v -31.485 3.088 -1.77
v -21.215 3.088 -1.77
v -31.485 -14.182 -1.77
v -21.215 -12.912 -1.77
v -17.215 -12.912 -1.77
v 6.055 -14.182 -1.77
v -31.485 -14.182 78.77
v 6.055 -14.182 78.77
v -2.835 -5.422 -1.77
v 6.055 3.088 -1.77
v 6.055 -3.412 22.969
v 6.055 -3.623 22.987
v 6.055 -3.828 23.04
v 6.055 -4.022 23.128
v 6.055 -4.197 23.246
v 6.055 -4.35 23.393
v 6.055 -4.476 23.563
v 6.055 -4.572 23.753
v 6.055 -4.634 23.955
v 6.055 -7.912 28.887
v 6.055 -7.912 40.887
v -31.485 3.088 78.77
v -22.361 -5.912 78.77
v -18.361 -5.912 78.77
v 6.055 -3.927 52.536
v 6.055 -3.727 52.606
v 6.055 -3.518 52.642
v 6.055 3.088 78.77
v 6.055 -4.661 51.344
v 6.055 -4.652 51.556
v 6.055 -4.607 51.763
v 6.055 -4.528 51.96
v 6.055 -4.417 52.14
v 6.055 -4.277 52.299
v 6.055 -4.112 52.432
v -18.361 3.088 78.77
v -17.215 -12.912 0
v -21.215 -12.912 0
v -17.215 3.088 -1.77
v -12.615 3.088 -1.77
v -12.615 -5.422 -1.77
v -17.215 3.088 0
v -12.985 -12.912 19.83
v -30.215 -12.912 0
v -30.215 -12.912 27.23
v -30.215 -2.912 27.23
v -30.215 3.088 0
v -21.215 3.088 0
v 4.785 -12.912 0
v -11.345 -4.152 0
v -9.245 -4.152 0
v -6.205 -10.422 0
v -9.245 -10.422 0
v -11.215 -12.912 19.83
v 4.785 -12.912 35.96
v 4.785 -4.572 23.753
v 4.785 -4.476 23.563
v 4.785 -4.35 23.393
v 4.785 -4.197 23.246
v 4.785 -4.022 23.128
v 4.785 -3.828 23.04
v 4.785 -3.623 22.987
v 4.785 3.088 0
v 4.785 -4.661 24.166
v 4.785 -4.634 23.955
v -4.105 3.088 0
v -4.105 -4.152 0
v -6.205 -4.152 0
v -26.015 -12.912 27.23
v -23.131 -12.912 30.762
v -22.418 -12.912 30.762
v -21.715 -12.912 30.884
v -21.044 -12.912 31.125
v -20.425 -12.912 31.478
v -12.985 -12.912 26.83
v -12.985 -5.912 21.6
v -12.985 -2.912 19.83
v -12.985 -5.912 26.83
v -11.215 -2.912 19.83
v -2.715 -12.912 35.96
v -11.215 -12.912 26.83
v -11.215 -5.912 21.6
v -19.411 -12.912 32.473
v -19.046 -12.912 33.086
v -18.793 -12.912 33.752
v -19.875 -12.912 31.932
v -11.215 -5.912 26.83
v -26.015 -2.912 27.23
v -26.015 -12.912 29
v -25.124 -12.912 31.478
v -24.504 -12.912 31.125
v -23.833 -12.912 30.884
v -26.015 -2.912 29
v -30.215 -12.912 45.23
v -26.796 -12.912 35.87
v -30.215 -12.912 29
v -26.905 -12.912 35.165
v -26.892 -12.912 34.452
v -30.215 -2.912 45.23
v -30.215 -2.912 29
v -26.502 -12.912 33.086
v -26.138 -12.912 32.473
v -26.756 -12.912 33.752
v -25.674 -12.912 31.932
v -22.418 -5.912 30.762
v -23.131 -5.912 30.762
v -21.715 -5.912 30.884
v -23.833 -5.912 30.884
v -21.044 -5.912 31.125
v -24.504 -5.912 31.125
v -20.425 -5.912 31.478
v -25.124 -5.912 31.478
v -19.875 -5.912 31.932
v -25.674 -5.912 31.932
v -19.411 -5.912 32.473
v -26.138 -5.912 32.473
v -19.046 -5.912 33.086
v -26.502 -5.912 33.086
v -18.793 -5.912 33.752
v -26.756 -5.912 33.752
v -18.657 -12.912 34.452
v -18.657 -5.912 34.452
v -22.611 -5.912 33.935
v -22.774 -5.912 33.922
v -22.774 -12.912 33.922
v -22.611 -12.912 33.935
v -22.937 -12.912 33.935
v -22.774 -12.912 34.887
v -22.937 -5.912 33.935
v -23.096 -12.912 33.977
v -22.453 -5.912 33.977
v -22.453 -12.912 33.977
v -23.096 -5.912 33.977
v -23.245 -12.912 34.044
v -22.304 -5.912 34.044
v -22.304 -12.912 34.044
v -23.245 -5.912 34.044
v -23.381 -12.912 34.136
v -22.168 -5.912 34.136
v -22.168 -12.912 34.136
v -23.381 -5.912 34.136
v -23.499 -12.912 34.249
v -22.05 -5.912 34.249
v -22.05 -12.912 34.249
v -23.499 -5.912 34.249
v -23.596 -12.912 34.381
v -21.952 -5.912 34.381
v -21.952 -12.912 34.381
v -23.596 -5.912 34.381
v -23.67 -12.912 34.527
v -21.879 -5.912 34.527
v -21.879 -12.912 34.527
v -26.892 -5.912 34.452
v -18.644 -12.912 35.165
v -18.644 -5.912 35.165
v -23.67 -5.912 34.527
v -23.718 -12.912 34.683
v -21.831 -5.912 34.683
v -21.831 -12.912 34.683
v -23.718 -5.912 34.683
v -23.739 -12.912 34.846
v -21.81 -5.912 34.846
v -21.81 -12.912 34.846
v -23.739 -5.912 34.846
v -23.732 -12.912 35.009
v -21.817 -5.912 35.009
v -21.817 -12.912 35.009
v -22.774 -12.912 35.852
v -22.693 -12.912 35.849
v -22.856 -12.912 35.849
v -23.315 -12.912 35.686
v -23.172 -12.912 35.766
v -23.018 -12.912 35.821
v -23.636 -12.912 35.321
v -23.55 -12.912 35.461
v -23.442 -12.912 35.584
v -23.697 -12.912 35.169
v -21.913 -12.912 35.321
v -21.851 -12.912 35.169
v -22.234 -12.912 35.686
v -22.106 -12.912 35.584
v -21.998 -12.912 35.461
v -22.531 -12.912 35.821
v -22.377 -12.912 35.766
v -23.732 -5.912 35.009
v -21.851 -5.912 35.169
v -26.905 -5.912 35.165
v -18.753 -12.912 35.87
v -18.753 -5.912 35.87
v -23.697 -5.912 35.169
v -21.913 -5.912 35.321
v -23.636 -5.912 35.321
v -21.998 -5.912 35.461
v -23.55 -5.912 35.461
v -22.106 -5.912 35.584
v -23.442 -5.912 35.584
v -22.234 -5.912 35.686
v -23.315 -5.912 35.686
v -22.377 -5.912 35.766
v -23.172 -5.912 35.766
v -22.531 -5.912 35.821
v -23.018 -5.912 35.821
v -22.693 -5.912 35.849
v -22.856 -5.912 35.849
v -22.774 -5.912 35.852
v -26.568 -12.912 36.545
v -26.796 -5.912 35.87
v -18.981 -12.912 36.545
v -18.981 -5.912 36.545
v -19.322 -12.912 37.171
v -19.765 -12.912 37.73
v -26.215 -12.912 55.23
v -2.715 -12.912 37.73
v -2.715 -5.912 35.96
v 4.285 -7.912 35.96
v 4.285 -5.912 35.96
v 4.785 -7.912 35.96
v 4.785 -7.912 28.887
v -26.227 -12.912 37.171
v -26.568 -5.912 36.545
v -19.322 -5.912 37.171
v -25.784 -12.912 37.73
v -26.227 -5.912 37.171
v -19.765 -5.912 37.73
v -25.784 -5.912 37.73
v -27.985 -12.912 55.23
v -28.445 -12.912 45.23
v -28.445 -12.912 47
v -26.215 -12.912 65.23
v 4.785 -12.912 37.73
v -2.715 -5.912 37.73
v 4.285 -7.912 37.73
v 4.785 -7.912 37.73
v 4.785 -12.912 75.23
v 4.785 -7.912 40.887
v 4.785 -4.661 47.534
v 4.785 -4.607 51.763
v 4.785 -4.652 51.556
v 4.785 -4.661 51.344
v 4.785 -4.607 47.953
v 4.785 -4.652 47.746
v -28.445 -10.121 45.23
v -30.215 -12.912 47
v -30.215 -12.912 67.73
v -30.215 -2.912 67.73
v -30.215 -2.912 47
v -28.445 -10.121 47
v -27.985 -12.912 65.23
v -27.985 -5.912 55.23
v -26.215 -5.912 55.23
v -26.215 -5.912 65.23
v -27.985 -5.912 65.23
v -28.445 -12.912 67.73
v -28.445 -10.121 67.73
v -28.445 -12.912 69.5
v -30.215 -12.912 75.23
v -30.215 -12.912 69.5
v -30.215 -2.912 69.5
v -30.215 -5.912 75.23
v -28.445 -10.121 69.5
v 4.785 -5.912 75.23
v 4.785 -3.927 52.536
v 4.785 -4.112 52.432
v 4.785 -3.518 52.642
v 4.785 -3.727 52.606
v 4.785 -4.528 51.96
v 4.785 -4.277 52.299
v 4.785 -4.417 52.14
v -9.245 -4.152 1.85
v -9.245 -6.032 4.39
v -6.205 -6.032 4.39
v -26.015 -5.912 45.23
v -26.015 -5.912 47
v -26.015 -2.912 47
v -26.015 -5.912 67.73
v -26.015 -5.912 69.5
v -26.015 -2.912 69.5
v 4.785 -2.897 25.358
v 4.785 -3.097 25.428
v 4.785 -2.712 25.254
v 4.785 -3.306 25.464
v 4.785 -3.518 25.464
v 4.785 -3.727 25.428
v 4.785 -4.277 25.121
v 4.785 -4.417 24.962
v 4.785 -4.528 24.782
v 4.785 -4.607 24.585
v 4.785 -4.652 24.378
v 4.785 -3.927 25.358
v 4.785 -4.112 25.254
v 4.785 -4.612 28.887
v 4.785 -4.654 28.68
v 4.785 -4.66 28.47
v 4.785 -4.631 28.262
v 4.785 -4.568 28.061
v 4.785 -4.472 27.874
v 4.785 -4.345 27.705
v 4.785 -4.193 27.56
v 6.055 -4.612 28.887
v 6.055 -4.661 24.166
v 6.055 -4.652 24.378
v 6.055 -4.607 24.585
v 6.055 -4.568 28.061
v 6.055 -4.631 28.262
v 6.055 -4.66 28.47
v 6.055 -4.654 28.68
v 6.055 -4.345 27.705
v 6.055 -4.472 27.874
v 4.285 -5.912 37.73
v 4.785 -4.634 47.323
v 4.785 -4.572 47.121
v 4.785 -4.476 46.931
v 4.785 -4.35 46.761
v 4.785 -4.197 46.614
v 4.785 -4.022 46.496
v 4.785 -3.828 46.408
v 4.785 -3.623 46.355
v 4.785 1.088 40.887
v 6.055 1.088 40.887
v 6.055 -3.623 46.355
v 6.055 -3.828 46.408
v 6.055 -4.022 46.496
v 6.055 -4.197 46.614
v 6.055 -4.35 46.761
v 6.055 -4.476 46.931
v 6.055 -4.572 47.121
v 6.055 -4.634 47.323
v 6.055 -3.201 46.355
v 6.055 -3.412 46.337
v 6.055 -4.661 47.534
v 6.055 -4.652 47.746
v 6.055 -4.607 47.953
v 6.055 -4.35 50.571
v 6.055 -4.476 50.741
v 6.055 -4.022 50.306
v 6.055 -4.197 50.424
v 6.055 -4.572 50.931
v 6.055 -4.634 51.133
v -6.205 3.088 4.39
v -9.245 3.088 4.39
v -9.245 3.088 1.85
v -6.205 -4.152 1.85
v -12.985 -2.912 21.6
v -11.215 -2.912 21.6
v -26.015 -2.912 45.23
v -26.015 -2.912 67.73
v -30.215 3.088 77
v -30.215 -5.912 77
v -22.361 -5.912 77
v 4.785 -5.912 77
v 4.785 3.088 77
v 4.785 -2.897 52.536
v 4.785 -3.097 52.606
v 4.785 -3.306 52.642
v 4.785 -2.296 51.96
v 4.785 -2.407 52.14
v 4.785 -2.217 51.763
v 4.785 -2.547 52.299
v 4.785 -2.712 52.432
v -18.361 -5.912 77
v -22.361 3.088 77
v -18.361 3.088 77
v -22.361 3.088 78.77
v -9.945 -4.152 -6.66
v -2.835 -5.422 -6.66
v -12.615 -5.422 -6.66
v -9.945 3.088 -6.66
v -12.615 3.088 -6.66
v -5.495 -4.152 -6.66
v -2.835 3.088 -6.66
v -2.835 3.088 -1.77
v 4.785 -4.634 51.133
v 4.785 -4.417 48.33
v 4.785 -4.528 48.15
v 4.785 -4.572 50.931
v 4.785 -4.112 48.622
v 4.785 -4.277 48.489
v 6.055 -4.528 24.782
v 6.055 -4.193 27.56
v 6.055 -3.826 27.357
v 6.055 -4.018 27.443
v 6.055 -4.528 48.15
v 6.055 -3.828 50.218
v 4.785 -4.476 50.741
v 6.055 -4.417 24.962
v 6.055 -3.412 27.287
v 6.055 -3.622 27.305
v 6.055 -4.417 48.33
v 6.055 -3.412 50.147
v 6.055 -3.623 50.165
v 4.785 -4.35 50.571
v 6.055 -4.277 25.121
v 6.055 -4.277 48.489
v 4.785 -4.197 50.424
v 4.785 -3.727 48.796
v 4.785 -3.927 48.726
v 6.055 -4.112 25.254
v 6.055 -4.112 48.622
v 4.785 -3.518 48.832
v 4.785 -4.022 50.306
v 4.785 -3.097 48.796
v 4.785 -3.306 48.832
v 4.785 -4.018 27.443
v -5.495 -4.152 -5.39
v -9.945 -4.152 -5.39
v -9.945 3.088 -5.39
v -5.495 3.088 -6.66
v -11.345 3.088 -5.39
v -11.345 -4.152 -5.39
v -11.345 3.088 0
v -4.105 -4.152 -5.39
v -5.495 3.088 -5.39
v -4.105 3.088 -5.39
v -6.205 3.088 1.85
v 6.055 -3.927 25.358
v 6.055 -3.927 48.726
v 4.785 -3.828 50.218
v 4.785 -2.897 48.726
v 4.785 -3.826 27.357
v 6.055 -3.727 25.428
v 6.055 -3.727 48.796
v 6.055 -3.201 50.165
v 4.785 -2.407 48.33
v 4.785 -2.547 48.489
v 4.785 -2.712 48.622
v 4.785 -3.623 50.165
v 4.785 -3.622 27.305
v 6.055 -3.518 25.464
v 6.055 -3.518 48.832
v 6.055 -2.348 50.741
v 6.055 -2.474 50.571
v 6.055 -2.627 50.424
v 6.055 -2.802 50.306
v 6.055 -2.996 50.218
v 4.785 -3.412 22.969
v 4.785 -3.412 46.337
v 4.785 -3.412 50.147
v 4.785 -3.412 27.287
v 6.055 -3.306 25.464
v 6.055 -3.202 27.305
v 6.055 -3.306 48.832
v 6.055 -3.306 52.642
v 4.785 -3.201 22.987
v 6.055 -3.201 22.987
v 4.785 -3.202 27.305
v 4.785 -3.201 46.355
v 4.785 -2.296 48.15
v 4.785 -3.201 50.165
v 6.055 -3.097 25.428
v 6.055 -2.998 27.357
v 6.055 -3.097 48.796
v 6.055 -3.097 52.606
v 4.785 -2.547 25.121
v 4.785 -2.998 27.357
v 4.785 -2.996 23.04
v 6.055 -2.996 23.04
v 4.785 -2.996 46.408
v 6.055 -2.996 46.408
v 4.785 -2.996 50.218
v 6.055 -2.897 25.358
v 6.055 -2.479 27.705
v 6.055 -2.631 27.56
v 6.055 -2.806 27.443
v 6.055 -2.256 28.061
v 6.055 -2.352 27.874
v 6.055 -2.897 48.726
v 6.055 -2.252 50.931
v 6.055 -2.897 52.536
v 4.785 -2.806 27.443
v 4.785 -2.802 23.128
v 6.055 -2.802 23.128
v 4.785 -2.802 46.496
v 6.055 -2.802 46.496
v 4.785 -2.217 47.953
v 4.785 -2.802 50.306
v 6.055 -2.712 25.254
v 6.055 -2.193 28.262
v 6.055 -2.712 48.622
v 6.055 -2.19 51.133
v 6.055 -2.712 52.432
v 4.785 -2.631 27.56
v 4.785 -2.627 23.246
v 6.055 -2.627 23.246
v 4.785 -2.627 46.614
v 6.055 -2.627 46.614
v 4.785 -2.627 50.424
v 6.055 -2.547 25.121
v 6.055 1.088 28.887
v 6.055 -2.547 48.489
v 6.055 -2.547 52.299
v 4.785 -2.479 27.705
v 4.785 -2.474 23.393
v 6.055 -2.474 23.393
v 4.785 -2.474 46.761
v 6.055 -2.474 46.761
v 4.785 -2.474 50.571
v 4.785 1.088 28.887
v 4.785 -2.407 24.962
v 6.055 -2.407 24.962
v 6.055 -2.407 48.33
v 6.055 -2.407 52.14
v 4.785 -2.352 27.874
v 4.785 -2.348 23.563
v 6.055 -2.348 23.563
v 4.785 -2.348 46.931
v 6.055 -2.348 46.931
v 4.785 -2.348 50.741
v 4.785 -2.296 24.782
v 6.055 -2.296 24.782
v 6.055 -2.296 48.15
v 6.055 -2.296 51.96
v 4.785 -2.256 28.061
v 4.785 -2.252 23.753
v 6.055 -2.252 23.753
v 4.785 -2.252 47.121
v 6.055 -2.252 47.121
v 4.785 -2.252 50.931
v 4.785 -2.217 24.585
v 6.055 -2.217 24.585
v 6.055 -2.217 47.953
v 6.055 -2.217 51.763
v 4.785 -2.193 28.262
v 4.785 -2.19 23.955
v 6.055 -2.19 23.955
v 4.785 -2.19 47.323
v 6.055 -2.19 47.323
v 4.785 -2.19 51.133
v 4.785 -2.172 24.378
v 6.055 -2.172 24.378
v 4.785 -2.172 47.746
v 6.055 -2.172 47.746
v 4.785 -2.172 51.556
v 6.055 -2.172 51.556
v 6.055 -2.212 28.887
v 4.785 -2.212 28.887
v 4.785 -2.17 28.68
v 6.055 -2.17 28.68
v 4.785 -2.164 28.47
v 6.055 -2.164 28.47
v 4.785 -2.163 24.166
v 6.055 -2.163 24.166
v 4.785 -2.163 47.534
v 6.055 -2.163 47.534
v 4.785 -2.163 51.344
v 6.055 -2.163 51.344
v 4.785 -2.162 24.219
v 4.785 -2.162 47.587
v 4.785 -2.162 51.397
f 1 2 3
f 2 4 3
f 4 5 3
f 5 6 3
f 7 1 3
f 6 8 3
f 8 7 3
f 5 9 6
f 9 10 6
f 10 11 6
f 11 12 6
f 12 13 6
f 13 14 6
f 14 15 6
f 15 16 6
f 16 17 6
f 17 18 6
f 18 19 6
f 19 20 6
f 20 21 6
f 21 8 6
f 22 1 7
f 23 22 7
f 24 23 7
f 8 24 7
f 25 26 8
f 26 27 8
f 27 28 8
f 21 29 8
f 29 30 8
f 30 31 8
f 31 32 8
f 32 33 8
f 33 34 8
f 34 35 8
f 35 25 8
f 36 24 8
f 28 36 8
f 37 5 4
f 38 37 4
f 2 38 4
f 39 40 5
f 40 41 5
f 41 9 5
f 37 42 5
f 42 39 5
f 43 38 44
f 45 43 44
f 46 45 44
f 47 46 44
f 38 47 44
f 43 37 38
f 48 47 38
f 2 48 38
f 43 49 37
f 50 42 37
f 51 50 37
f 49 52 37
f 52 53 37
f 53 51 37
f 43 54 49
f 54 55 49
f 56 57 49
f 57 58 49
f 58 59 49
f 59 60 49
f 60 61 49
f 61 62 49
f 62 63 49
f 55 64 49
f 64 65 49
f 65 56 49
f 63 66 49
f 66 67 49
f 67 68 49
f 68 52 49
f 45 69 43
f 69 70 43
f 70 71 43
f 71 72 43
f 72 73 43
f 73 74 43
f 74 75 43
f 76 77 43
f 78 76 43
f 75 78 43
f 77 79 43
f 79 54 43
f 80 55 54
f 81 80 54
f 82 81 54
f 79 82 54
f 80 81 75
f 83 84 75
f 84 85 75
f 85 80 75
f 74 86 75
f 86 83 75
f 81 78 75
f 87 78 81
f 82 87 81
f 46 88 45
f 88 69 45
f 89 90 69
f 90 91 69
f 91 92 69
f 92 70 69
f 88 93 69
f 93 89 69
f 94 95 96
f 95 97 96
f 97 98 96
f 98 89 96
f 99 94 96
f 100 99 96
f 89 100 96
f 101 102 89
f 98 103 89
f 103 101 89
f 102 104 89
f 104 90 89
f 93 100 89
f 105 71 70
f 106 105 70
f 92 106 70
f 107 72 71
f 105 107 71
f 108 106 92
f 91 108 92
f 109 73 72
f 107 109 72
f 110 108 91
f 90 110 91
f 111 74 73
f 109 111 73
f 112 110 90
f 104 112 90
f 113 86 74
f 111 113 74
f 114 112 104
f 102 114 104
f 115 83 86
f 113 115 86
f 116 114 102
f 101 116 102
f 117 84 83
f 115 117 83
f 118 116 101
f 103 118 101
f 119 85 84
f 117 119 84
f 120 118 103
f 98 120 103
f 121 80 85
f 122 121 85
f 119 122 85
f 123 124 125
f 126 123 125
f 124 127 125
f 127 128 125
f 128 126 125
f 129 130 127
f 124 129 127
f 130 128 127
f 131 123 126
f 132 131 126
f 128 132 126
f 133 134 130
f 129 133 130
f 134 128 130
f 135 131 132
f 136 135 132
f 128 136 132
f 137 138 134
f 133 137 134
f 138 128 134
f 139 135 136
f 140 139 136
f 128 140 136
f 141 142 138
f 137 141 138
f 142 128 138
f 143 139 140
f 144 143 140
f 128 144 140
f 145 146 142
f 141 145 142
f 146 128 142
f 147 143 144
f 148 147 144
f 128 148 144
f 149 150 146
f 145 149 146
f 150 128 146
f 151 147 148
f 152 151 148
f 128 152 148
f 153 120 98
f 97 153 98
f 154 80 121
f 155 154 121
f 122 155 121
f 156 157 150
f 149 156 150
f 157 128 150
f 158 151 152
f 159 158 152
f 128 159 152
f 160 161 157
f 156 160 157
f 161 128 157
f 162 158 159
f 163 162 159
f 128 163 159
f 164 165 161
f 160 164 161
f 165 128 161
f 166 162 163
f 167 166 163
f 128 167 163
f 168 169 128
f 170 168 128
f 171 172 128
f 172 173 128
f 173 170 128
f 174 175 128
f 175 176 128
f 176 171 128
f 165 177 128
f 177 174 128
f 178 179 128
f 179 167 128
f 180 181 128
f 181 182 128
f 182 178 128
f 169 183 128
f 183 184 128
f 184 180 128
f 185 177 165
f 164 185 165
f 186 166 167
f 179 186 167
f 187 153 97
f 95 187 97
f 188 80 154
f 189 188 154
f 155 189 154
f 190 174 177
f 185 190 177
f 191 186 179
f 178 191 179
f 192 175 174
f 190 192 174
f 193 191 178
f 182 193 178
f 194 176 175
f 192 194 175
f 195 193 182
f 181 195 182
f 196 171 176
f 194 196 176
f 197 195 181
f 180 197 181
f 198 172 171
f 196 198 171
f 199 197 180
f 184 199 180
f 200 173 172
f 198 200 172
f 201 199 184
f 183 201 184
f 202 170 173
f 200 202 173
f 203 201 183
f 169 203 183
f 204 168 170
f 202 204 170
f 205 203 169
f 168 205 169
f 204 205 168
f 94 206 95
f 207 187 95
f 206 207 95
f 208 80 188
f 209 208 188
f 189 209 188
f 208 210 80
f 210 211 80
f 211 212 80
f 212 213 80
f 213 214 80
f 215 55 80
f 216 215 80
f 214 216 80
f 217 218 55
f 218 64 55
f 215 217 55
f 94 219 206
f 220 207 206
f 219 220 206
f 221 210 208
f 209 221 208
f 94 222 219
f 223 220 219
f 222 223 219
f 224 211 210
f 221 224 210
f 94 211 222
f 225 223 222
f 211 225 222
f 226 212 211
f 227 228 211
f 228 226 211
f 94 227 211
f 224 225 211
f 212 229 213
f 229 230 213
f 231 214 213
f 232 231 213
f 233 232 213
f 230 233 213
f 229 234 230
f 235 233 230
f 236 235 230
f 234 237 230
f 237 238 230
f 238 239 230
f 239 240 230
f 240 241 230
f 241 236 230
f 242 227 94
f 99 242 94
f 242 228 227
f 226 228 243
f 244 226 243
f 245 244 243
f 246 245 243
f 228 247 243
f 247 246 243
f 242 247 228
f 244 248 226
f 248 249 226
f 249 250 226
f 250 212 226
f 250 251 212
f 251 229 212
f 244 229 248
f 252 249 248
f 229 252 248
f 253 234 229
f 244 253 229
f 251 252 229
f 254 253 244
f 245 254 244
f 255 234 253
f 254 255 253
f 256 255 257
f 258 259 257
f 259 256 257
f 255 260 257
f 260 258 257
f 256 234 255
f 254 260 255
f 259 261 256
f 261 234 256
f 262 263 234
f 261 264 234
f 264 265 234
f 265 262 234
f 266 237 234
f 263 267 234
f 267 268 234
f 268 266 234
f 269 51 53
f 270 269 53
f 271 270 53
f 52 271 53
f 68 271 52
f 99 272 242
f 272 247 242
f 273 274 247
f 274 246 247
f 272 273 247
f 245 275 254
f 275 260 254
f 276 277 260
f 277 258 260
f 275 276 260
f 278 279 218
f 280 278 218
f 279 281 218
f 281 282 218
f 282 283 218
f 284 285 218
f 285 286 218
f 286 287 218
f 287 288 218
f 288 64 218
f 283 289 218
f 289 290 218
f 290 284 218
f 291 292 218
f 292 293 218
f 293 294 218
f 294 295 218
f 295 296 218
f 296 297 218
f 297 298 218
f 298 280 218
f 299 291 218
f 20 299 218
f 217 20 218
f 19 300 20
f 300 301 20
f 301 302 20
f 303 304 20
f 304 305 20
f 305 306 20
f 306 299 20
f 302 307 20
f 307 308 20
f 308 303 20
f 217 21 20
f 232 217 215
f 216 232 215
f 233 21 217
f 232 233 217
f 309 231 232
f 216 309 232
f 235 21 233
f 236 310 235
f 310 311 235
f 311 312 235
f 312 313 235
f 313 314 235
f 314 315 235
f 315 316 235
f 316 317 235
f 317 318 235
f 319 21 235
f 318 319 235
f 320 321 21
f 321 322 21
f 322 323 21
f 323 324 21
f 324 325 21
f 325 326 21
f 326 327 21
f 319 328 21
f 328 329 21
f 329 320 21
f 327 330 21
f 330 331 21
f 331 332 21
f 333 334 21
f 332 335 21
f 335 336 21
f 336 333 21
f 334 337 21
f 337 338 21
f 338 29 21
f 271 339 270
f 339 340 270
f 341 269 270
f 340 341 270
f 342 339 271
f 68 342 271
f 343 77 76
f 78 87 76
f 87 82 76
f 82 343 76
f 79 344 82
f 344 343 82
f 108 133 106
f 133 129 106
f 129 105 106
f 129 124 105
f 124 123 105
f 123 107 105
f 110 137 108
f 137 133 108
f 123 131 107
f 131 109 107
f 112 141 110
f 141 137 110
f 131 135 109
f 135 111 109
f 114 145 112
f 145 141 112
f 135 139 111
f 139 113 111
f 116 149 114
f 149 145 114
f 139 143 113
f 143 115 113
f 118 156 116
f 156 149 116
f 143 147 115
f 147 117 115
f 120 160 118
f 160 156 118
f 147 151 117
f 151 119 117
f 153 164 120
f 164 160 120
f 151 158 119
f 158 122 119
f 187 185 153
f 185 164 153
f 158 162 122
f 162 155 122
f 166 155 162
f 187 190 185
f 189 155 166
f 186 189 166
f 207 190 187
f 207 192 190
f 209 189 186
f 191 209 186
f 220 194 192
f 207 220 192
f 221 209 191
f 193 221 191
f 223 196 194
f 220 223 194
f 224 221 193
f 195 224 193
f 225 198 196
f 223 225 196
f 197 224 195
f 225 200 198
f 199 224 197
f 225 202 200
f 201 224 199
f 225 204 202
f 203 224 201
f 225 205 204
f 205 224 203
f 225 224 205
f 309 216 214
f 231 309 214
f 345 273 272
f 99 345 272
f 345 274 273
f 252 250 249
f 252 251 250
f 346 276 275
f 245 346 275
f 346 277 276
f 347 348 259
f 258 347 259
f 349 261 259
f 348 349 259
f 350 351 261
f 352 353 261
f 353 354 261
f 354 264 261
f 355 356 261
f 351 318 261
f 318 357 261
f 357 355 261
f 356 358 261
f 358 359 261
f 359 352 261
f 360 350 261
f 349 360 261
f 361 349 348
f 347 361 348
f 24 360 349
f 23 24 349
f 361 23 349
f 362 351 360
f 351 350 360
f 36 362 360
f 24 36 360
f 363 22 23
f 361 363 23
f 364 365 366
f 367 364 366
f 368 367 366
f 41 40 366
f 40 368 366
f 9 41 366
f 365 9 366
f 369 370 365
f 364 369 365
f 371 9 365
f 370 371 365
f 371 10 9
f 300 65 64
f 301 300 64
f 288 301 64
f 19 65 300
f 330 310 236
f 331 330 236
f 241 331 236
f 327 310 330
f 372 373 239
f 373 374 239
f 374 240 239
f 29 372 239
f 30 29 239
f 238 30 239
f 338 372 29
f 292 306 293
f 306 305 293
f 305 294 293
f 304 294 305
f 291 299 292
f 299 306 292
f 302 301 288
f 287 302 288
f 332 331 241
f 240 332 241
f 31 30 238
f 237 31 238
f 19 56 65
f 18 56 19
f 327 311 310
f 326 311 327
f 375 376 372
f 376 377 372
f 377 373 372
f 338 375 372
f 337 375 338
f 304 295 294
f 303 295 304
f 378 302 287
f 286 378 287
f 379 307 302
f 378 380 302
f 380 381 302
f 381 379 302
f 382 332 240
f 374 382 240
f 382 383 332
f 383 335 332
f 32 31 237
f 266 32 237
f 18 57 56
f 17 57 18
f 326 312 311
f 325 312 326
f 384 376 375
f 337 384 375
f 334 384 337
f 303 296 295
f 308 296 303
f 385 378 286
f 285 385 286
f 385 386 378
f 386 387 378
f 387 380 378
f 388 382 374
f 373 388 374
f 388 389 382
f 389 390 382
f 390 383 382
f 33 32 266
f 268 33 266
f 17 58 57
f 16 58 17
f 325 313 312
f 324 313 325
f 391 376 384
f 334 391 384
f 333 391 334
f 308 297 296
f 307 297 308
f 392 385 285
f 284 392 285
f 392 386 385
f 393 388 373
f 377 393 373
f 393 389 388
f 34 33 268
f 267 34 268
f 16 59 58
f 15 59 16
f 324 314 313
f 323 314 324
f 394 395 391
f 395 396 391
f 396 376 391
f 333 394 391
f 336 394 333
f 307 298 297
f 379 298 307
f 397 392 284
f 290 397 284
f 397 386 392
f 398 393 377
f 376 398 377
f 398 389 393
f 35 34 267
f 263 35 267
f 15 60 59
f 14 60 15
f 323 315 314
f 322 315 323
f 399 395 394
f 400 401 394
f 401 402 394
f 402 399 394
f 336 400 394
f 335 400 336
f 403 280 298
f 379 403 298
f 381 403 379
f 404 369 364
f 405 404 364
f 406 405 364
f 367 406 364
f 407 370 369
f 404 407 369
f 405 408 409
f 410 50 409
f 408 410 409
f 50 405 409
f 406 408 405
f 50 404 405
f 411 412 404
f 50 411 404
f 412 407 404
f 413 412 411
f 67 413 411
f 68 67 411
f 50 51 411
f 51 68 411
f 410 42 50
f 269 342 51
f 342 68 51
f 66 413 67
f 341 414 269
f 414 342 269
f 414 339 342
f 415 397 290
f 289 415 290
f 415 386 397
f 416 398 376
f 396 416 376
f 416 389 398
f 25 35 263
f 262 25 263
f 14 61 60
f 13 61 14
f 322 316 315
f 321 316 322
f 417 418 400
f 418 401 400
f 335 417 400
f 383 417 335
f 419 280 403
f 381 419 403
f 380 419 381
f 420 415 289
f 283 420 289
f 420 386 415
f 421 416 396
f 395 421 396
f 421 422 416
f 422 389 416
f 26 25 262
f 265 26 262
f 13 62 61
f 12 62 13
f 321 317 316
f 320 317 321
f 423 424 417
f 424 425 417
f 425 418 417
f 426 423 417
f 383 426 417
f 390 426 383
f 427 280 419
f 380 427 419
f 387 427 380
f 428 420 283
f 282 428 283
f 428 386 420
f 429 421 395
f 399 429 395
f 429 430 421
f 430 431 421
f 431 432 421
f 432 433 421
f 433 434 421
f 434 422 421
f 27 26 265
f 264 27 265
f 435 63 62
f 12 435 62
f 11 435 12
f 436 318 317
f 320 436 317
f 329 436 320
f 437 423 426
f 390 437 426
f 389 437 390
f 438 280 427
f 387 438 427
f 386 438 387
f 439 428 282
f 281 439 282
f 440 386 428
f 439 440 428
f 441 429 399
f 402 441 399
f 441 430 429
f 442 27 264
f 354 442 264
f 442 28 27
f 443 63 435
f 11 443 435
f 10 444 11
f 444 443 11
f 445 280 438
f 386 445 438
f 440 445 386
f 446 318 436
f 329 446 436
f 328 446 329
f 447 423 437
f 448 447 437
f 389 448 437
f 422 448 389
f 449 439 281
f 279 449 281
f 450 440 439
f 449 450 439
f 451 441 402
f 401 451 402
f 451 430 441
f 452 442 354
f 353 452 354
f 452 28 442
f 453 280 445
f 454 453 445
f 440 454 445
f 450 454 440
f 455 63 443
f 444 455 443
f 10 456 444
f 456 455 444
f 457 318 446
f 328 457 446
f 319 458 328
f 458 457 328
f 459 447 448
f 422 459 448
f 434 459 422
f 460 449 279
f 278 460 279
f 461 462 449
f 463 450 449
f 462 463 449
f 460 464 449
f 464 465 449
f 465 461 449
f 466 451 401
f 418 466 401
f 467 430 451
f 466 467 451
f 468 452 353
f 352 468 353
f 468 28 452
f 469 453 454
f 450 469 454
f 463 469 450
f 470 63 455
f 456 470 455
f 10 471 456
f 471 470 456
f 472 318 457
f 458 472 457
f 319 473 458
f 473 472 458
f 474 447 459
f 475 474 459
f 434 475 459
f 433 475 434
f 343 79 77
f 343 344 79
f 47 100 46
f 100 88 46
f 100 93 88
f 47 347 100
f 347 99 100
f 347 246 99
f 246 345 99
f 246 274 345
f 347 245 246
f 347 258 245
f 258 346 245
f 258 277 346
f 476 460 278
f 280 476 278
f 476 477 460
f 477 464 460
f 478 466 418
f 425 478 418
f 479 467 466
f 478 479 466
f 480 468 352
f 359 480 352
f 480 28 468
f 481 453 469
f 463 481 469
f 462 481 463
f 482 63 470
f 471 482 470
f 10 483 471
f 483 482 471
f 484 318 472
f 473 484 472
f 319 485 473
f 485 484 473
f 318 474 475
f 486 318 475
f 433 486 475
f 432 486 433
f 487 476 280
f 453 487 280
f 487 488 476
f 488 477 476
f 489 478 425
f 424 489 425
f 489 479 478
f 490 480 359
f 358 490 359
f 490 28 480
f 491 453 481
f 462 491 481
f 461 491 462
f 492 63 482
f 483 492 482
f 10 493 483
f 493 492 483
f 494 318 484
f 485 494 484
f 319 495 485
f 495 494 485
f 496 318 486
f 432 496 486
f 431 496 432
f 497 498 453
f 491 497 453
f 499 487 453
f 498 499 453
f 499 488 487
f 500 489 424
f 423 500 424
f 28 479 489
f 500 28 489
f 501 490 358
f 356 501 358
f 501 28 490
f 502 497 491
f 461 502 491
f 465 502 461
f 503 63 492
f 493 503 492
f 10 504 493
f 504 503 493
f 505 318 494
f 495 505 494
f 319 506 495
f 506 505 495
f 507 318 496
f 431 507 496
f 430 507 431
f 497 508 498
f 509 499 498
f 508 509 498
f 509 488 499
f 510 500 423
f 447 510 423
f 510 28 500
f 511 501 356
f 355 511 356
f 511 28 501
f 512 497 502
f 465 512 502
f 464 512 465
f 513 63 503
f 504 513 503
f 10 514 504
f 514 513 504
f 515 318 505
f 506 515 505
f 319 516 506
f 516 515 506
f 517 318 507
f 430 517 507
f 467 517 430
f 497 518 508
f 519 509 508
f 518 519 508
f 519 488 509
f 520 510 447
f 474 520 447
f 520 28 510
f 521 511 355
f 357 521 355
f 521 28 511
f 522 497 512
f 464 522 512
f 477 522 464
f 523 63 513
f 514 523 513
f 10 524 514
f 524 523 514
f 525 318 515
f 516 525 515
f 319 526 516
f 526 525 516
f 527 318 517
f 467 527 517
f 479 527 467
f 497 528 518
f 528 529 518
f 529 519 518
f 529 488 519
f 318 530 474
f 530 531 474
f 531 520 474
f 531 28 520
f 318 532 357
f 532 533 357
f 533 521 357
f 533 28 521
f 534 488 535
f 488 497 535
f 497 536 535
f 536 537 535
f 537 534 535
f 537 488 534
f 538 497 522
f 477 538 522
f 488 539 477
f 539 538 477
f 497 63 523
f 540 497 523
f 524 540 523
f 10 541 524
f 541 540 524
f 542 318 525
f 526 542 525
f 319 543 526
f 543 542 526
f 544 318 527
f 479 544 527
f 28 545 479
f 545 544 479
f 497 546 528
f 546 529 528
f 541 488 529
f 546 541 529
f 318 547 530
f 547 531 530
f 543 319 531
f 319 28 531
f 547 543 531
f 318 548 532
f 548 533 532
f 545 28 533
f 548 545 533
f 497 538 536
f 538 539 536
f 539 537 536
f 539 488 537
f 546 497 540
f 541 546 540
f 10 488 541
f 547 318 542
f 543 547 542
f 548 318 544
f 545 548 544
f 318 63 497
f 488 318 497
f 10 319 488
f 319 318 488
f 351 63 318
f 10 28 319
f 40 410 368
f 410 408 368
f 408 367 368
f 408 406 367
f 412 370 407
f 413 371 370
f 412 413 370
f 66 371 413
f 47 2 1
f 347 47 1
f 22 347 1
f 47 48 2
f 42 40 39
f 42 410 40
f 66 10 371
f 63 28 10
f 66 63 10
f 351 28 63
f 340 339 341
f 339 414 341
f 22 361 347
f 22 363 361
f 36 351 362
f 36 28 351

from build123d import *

# Parameters (mm, degrees)
BOSS_EXTRUDE1_DEPTH            = 77
SKETCH3_W                      = 37.54
SKETCH3_H                      = 17.27
BOSS_EXTRUDE2_DEPTH            = 1.77
SKETCH4_W                      = 37.54
SKETCH4_H                      = 17.27
BOSS_EXTRUDE3_DEPTH            = 1.77
SKETCH5_W                      = 4
SKETCH5_H                      = 16
CUT_EXTRUDE2_DEPTH             = 1.77
SKETCH6_W                      = 9.78
SKETCH6_H                      = 11.05
SKETCH6_W_2                    = 7.24
SKETCH6_H_2                    = 7.24
BUTTON_WALLS_DEPTH             = 7.24
SKETCH7_W                      = 9.78
SKETCH7_H                      = 11.05
BUTTON_BOTTOM_DEPTH            = 1.27
SKETCH8_W                      = 7.24
SKETCH8_H                      = 1.77
BUTTON_CUTOUT_MIDDLE_DEPTH     = 7.24
SKETCH9_W                      = 4.45
SKETCH9_H                      = 1.27
SKETCH9_W_2                    = 3.37
SKETCH9_H_2                    = 4.39
BUTTON_CUTOUT_FRONT_BACK_DEPTH = 7.24
SKETCH10_W                     = 3.37
SKETCH10_H                     = 4.39
BUTTON_CUTOUT_BOTTOM_DEPTH     = 1.27
BUTTON_CHAMFER1_SIZE           = 5
SKETCH12_W                     = 35
SKETCH12_H                     = 1.77
SKETCH12_W_2                   = 1.77
SKETCH12_H_2                   = 10
SKETCH12_W_3                   = 7.5
SKETCH12_R                     = 0.9652
SKETCH12_H_3                   = 7
SUPPORT_PCB_BATTERY_DEPTH      = 7
SKETCH13_R                     = 1.25
SKETCH13_W                     = 12
SKETCH13_H                     = 9
CUTOUT_USB_3_LEDS_DEPTH        = 1.77
SKETCH16_W                     = 1.77
SKETCH16_H                     = 1.77
TAB_PCB_RETAINER_LEN_DEPTH     = 3
SKETCH17_W                     = 4
SKETCH17_H                     = 1.77
CUTOUT_BACK_MOT_WIRES_DEPTH    = 9
SKETCH18_R                     = 1.25
CUTOUT_CHG_DONE_LED_DEPTH      = 10
SKETCH19_W                     = 4.2
SKETCH19_H                     = 1.77
TAB_PCB_RETAINERS_WIDTH_DEPTH  = 10
CUTOUT_RETAINER_TAB_1_DEPTH    = 1.77
CUTOUT_RETAINER_TAB_2_DEPTH    = 1.77


with BuildPart() as part:
    # Sketch2 → Boss-Extrude1 (new body)
    with BuildSketch(Plane.XY):
        Polygon((-30.215355805, 3.088014981), (-30.215355805, -12.911985019), (4.784644195, -12.911985019), (4.784644195, 3.088014981), (6.054644195, 3.088014981), (6.054644195, -14.181985019), (-31.485355805, -14.181985019), (-31.485355805, 3.088014981), align=None)
    extrude(amount=BOSS_EXTRUDE1_DEPTH)

    # Sketch3 → Boss-Extrude2 (add)
    with BuildSketch(Plane.XY.offset(77)):
        with Locations((-12.715355805, -5.546985019)):
            Rectangle(SKETCH3_W, SKETCH3_H)
    extrude(amount=BOSS_EXTRUDE2_DEPTH)

    # Sketch4 → Boss-Extrude3 (add)
    with BuildSketch(Plane(origin=(0, 0, 0), x_dir=(-1, 0, 0), z_dir=(0, 0, -1))):
        with Locations((12.715355805, -5.546985019)):
            Rectangle(SKETCH4_W, SKETCH4_H)
    extrude(amount=BOSS_EXTRUDE3_DEPTH)

    # Sketch5 → Cut-Extrude2 (cut)
    with BuildSketch(Plane(origin=(0, 0, -1.77), x_dir=(-1, 0, 0), z_dir=(0, 0, -1))):
        with Locations((19.215355805, -4.911985019)):
            Rectangle(SKETCH5_W, SKETCH5_H)
    extrude(amount=-CUT_EXTRUDE2_DEPTH, mode=Mode.SUBTRACT)

    # Sketch6 → button_walls (add)
    with BuildSketch(Plane(origin=(0, 3.088014981, 0), x_dir=(1, 0, 0), z_dir=(0, 1, 0))):
        with Locations((-7.725355805, 1.135)):
            Rectangle(SKETCH6_W, SKETCH6_H)
        with Locations((-7.725355805, 1.77)):
            Rectangle(SKETCH6_W_2, SKETCH6_H_2, mode=Mode.SUBTRACT)
    extrude(amount=-BUTTON_WALLS_DEPTH)

    # Sketch7 → button_bottom (add)
    with BuildSketch(Plane.XZ.offset(4.151985019)):
        with Locations((-7.725355805, -1.135)):
            Rectangle(SKETCH7_W, SKETCH7_H)
    extrude(amount=BUTTON_BOTTOM_DEPTH)

    # Sketch8 → button_cutout_middle (cut)
    with BuildSketch(Plane(origin=(0, 3.088014981, 0), x_dir=(1, 0, 0), z_dir=(0, 1, 0))):
        with Locations((-7.725355805, 0.885)):
            Rectangle(SKETCH8_W, SKETCH8_H)
    extrude(amount=-BUTTON_CUTOUT_MIDDLE_DEPTH, mode=Mode.SUBTRACT)

    # Sketch9 → button_cutout_front_back (cut)
    with BuildSketch(Plane(origin=(0, 3.088014981, 0), x_dir=(1, 0, 0), z_dir=(0, 1, 0))):
        with Locations((-7.720355805, 6.025)):
            Rectangle(SKETCH9_W, SKETCH9_H)
        with Locations((-10.930355805, -2.195)):
            Rectangle(SKETCH9_W_2, SKETCH9_H_2)
        with Locations((-4.520355805, -2.195)):
            Rectangle(SKETCH9_W_2, SKETCH9_H_2)
    extrude(amount=-BUTTON_CUTOUT_FRONT_BACK_DEPTH, mode=Mode.SUBTRACT)

    # Sketch10 → button_cutout_bottom (cut)
    with BuildSketch(Plane(origin=(0, -4.151985019, 0), x_dir=(1, 0, 0), z_dir=(0, 1, 0))):
        with Locations((-10.930355805, -2.195)):
            Rectangle(SKETCH10_W, SKETCH10_H)
        with Locations((-4.520355805, -2.195)):
            Rectangle(SKETCH10_W, SKETCH10_H)
    extrude(amount=-BUTTON_CUTOUT_BOTTOM_DEPTH, mode=Mode.SUBTRACT)

    # button_Chamfer1
    # the kernel refuses this chamfer: 5 mm, written as the material it adds along each edge
    with BuildSketch(Plane(origin=(-6.205355805, -5.421985019, 0), x_dir=(0, -0.9996219169112968, -0.027495876610586372), z_dir=(-1, 0, 0))) as button_chamfer1_piece_1_section:
        Polygon((BUTTON_CHAMFER1_SIZE * 0.999621916911, BUTTON_CHAMFER1_SIZE * 0.0274958766106), (-BUTTON_CHAMFER1_SIZE * 0.0274958766106, BUTTON_CHAMFER1_SIZE * 0.999621916911), (0, 0), align=None)
    button_chamfer1_piece_1 = extrude(amount=3.04, mode=Mode.PRIVATE)
    button_chamfer1_piece_1 = split(button_chamfer1_piece_1, bisect_by=Plane(origin=(-7.725355805, -7.110612501, 4.39), z_dir=(0, 0, -1)), keep=Keep.TOP, mode=Mode.PRIVATE)
    add(button_chamfer1_piece_1)

    # Sketch12 → support_pcb_battery (add)
    # profile 1 of 5: a face of its own
    with BuildSketch(Plane(origin=(0, -12.911985019, 0), x_dir=(1, 0, 0), z_dir=(0, 1, 0))):
        with Locations((-12.715355805, -76.115)):
            Rectangle(SKETCH12_W, SKETCH12_H)
    # profile 2 of 5: a face of its own
    with BuildSketch(Plane(origin=(0, -12.911985019, 0), x_dir=(1, 0, 0), z_dir=(0, 1, 0))):
        with Locations((-27.100355805, -60.23)):
            Rectangle(SKETCH12_W_2, SKETCH12_H_2)
    # profile 3 of 5: a face of its own
    with BuildSketch(Plane(origin=(0, -12.911985019, 0), x_dir=(1, 0, 0), z_dir=(0, 1, 0))):
        with Locations((1.034644195, -36.845)):
            Rectangle(SKETCH12_W_3, SKETCH12_H)
    # profile 4 of 5: a face of its own
    with BuildSketch(Plane(origin=(0, -12.911985019, 0), x_dir=(1, 0, 0), z_dir=(0, 1, 0))):
        with BuildLine():
            Line((-25.783918863, -37.73), (-19.764792747, -37.73))
            ThreePointArc((-19.764792747, -37.73), (-22.774355805, -30.7466), (-25.783918863, -37.73))
        make_face()
        with Locations(Location((-22.774355805, -34.8868, 0), (0, 0, 270))):
            Circle(SKETCH12_R, mode=Mode.SUBTRACT)
    # profile 5 of 5: a face of its own
    with BuildSketch(Plane(origin=(0, -12.911985019, 0), x_dir=(1, 0, 0), z_dir=(0, 1, 0))):
        with Locations((-12.100355805, -23.33)):
            Rectangle(SKETCH12_W_2, SKETCH12_H_3)
    extrude(amount=SUPPORT_PCB_BATTERY_DEPTH)

    # Sketch13 → cutout_usb_3_leds (cut)
    with BuildSketch(Plane(origin=(6.054644195, 0, 0), x_dir=(0, 0, -1), z_dir=(1, 0, 0))):
        with Locations((-51.3968, -3.411985019)):
            Circle(SKETCH13_R)
        with Locations((-47.5868, -3.411985019)):
            Circle(SKETCH13_R)
        with Locations((-24.2188, -3.411985019)):
            Circle(SKETCH13_R)
        with Locations((-34.8868, -3.411985019)):
            Rectangle(SKETCH13_W, SKETCH13_H)
    extrude(amount=-CUTOUT_USB_3_LEDS_DEPTH, mode=Mode.SUBTRACT)

    # Sketch16 → tab_pcb_retainer_len (add)
    with BuildSketch(Plane(origin=(0, -5.911985019, 0), x_dir=(1, 0, 0), z_dir=(0, 1, 0))):
        with Locations((-12.100355805, -20.715)):
            Rectangle(SKETCH16_W, SKETCH16_H)
    extrude(amount=TAB_PCB_RETAINER_LEN_DEPTH)

    # Sketch17 → cutout_back_mot_wires (cut)
    with BuildSketch(Plane(origin=(0, 3.088014981, 0), x_dir=(1, 0, 0), z_dir=(0, 1, 0))):
        with Locations((-20.361355805, -77.885)):
            Rectangle(SKETCH17_W, SKETCH17_H)
    extrude(amount=-CUTOUT_BACK_MOT_WIRES_DEPTH, mode=Mode.SUBTRACT)

    # Sketch18 → cutout_chg_done_led (cut)
    with BuildSketch(Plane(origin=(6.054644195, 0, 0), x_dir=(0, 0, -1), z_dir=(1, 0, 0))):
        with Locations((-28.5368, -3.411985019)):
            Circle(SKETCH18_R)
    extrude(amount=-CUTOUT_CHG_DONE_LED_DEPTH, mode=Mode.SUBTRACT)

    # Sketch19 → tab_pcb_retainers_width (add)
    with BuildSketch(Plane(origin=(0, -12.911985019, 0), x_dir=(1, 0, 0), z_dir=(0, 1, 0))):
        with Locations((-28.115355805, -68.615)):
            Rectangle(SKETCH19_W, SKETCH19_H)
        with Locations((-28.115355805, -46.115)):
            Rectangle(SKETCH19_W, SKETCH19_H)
        with Locations((-28.115355805, -28.115)):
            Rectangle(SKETCH19_W, SKETCH19_H)
    extrude(amount=TAB_PCB_RETAINERS_WIDTH_DEPTH)

    # Sketch20 → cutout_retainer_tab_1 (cut)
    with BuildSketch(Plane.XY.offset(69.5)):
        Polygon((-26.015355805, -12.911985019), (-26.015355805, -5.911985019), (-28.445355805, -10.120868481), (-28.445355805, -12.911985019), align=None)
    extrude(amount=-CUTOUT_RETAINER_TAB_1_DEPTH, mode=Mode.SUBTRACT)

    # Sketch21 → cutout_retainer_tab_2 (cut)
    with BuildSketch(Plane.XY.offset(47)):
        Polygon((-26.015355805, -5.911985019), (-28.445355805, -10.120868481), (-28.445355805, -12.911985019), (-26.015355805, -12.911985019), align=None)
    extrude(amount=-CUTOUT_RETAINER_TAB_2_DEPTH, mode=Mode.SUBTRACT)


solid = part.part
